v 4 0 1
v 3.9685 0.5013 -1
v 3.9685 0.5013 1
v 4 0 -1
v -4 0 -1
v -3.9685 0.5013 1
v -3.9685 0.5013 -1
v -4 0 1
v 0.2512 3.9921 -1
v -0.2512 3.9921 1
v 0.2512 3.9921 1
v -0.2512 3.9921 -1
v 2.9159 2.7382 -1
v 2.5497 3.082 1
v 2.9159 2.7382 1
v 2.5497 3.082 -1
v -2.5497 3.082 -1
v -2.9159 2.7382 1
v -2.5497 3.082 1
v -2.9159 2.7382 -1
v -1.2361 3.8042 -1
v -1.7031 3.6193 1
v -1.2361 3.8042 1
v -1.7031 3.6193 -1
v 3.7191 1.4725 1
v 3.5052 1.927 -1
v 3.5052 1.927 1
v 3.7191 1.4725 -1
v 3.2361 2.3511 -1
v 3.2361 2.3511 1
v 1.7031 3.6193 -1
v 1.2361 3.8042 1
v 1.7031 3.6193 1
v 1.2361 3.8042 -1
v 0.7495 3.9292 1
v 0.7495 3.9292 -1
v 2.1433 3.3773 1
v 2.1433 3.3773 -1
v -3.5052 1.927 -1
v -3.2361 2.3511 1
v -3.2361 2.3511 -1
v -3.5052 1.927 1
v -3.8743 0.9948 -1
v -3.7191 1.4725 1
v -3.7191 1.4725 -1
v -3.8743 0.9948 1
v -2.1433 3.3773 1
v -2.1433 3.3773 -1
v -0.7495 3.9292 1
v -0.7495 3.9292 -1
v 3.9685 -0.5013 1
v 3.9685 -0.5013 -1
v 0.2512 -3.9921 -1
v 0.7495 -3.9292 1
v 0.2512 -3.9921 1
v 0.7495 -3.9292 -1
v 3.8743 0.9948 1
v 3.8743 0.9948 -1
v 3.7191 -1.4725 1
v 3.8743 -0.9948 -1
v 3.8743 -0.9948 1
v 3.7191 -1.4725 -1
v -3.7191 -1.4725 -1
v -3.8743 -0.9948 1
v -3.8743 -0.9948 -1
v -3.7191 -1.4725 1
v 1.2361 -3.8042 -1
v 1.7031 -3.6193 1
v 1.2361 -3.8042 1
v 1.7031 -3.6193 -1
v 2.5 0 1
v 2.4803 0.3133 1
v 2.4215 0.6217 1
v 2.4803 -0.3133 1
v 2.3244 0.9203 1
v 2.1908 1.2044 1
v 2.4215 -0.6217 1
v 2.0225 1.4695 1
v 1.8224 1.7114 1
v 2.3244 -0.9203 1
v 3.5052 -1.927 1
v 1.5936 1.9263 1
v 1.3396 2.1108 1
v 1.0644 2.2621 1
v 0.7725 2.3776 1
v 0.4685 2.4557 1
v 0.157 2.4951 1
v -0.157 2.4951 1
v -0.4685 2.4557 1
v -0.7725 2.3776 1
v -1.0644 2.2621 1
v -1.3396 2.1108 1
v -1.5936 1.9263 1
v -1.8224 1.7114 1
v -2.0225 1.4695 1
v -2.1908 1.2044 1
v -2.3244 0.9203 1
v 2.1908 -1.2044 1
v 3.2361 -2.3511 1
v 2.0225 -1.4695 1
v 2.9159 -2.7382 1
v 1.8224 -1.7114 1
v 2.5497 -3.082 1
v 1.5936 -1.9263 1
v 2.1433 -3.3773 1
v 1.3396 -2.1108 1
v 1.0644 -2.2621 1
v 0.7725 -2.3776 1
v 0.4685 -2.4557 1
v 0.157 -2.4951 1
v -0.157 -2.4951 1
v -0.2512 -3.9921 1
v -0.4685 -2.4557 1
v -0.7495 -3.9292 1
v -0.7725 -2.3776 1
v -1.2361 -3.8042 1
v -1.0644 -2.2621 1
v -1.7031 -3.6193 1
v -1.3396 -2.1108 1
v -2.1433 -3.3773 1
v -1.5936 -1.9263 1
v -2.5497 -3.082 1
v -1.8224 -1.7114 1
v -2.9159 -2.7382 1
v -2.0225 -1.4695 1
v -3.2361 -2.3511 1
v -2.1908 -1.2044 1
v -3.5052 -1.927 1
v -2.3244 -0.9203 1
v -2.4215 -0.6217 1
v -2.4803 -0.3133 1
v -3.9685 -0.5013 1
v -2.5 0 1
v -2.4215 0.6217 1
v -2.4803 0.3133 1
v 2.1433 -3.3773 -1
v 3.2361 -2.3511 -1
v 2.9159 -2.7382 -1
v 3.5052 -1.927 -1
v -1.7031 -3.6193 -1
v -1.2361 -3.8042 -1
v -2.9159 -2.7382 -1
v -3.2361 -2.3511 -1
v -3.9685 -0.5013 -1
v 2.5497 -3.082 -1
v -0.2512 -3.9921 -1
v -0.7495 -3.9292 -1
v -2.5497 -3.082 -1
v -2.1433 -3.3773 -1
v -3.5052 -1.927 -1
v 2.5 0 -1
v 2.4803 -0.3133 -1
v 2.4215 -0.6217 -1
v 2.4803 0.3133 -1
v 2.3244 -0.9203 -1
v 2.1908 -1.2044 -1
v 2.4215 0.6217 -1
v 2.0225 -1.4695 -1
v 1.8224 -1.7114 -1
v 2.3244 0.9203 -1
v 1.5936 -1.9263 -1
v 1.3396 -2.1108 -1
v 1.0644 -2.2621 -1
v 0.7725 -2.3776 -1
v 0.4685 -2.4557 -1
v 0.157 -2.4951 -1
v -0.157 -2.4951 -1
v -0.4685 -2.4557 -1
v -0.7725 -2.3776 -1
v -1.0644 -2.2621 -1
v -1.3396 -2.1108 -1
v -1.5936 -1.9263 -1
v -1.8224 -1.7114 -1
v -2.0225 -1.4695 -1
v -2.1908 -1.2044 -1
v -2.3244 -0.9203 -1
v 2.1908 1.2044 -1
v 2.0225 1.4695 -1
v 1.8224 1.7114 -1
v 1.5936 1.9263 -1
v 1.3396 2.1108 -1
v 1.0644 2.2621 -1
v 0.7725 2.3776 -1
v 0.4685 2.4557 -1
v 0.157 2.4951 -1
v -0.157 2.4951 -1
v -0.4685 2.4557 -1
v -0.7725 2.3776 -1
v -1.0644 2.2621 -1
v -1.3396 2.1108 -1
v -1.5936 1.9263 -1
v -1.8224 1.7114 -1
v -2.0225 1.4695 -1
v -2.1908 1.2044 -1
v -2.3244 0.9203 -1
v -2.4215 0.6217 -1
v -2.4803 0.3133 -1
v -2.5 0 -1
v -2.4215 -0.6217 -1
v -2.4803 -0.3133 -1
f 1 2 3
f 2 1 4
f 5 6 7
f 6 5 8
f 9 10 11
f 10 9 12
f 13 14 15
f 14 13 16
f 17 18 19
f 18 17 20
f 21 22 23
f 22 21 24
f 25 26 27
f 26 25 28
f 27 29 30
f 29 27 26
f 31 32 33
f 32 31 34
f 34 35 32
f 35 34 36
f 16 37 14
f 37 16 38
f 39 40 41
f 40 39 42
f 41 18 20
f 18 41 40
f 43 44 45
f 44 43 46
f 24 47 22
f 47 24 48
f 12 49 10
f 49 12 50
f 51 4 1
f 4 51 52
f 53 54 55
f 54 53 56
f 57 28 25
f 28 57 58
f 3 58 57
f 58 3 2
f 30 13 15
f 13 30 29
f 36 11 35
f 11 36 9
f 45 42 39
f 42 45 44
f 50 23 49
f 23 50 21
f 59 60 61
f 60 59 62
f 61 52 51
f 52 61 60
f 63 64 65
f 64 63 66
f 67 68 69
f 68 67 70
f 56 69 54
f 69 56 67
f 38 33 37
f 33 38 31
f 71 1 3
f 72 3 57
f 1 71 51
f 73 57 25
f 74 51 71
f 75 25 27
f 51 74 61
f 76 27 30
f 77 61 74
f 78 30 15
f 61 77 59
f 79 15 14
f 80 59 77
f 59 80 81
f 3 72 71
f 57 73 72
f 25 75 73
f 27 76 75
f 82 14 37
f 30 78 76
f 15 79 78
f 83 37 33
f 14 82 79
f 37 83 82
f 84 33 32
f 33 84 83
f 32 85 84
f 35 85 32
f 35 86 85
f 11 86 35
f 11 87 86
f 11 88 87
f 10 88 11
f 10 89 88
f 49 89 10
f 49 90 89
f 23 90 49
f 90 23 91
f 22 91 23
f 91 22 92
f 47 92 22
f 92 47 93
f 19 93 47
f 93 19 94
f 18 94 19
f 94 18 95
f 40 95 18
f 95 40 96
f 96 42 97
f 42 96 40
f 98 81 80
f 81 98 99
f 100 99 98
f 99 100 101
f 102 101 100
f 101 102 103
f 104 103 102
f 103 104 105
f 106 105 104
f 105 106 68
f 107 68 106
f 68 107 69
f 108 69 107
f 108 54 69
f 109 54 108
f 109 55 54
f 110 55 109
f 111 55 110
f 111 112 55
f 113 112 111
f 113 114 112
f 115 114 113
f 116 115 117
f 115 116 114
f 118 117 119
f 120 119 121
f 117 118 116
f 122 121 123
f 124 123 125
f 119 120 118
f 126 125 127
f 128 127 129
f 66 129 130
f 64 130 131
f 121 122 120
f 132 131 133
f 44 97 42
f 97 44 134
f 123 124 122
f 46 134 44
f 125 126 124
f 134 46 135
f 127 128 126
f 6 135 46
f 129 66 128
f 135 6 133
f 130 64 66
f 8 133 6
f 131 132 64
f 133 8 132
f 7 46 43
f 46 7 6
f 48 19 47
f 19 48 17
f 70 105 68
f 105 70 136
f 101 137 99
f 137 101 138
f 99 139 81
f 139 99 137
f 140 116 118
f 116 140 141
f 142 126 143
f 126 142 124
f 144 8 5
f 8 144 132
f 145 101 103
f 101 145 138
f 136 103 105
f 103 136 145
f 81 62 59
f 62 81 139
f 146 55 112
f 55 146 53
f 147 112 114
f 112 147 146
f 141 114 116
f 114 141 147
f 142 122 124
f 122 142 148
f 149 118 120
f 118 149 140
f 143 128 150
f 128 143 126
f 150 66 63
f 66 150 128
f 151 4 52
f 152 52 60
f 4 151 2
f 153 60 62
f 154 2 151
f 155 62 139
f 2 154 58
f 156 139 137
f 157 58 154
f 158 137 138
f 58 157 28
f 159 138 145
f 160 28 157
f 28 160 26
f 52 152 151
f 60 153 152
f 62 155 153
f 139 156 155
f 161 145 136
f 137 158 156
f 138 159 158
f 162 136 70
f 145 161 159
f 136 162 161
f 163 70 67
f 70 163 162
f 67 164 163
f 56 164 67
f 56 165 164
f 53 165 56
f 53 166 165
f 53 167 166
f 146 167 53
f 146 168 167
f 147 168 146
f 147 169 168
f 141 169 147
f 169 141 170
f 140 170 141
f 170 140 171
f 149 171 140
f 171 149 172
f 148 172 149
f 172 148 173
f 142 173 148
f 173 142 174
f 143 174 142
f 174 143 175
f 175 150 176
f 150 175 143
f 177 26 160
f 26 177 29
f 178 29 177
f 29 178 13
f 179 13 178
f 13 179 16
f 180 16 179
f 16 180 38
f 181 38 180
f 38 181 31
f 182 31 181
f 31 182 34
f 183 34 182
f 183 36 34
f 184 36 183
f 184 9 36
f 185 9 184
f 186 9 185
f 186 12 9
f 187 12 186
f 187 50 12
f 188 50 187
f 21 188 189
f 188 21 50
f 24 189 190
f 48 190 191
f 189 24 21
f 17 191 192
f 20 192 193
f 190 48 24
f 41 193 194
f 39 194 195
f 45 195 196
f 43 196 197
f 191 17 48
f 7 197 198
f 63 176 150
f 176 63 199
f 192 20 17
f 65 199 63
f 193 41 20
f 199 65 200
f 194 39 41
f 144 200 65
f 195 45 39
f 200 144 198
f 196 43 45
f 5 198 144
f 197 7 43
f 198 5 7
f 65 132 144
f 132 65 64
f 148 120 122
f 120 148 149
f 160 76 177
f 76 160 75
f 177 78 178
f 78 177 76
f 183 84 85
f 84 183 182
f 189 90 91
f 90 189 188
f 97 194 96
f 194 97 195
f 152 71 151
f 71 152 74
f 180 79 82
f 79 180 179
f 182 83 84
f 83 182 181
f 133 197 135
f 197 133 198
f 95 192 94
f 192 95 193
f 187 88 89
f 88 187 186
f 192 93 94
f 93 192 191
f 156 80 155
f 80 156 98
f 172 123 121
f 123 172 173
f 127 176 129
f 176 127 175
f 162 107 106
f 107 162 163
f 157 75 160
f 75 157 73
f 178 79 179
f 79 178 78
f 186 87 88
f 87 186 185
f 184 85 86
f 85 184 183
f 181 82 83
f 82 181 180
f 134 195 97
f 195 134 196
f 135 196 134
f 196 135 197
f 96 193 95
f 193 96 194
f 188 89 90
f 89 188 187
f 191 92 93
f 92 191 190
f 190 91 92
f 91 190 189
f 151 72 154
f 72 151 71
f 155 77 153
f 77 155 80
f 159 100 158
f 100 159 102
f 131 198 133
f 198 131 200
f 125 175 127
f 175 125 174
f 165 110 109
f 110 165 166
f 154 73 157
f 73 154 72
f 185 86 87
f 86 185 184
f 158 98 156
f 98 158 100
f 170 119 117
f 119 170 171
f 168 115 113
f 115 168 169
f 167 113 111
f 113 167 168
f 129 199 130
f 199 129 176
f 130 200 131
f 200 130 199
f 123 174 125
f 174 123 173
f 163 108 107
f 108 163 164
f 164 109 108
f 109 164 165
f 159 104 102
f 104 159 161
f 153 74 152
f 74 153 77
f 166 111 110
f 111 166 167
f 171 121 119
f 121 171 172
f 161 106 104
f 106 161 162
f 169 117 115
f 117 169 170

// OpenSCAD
$fn = 50;


difference() {
	union() {
		translate(v = [0, 0, -1.0000000000]) {
			cylinder(h = 2, r = 4.0000000000);
		}
	}
	union() {
		translate(v = [0, 0, -100.0000000000]) {
			cylinder(h = 200, r = 2.5000000000);
		}
	}
}
